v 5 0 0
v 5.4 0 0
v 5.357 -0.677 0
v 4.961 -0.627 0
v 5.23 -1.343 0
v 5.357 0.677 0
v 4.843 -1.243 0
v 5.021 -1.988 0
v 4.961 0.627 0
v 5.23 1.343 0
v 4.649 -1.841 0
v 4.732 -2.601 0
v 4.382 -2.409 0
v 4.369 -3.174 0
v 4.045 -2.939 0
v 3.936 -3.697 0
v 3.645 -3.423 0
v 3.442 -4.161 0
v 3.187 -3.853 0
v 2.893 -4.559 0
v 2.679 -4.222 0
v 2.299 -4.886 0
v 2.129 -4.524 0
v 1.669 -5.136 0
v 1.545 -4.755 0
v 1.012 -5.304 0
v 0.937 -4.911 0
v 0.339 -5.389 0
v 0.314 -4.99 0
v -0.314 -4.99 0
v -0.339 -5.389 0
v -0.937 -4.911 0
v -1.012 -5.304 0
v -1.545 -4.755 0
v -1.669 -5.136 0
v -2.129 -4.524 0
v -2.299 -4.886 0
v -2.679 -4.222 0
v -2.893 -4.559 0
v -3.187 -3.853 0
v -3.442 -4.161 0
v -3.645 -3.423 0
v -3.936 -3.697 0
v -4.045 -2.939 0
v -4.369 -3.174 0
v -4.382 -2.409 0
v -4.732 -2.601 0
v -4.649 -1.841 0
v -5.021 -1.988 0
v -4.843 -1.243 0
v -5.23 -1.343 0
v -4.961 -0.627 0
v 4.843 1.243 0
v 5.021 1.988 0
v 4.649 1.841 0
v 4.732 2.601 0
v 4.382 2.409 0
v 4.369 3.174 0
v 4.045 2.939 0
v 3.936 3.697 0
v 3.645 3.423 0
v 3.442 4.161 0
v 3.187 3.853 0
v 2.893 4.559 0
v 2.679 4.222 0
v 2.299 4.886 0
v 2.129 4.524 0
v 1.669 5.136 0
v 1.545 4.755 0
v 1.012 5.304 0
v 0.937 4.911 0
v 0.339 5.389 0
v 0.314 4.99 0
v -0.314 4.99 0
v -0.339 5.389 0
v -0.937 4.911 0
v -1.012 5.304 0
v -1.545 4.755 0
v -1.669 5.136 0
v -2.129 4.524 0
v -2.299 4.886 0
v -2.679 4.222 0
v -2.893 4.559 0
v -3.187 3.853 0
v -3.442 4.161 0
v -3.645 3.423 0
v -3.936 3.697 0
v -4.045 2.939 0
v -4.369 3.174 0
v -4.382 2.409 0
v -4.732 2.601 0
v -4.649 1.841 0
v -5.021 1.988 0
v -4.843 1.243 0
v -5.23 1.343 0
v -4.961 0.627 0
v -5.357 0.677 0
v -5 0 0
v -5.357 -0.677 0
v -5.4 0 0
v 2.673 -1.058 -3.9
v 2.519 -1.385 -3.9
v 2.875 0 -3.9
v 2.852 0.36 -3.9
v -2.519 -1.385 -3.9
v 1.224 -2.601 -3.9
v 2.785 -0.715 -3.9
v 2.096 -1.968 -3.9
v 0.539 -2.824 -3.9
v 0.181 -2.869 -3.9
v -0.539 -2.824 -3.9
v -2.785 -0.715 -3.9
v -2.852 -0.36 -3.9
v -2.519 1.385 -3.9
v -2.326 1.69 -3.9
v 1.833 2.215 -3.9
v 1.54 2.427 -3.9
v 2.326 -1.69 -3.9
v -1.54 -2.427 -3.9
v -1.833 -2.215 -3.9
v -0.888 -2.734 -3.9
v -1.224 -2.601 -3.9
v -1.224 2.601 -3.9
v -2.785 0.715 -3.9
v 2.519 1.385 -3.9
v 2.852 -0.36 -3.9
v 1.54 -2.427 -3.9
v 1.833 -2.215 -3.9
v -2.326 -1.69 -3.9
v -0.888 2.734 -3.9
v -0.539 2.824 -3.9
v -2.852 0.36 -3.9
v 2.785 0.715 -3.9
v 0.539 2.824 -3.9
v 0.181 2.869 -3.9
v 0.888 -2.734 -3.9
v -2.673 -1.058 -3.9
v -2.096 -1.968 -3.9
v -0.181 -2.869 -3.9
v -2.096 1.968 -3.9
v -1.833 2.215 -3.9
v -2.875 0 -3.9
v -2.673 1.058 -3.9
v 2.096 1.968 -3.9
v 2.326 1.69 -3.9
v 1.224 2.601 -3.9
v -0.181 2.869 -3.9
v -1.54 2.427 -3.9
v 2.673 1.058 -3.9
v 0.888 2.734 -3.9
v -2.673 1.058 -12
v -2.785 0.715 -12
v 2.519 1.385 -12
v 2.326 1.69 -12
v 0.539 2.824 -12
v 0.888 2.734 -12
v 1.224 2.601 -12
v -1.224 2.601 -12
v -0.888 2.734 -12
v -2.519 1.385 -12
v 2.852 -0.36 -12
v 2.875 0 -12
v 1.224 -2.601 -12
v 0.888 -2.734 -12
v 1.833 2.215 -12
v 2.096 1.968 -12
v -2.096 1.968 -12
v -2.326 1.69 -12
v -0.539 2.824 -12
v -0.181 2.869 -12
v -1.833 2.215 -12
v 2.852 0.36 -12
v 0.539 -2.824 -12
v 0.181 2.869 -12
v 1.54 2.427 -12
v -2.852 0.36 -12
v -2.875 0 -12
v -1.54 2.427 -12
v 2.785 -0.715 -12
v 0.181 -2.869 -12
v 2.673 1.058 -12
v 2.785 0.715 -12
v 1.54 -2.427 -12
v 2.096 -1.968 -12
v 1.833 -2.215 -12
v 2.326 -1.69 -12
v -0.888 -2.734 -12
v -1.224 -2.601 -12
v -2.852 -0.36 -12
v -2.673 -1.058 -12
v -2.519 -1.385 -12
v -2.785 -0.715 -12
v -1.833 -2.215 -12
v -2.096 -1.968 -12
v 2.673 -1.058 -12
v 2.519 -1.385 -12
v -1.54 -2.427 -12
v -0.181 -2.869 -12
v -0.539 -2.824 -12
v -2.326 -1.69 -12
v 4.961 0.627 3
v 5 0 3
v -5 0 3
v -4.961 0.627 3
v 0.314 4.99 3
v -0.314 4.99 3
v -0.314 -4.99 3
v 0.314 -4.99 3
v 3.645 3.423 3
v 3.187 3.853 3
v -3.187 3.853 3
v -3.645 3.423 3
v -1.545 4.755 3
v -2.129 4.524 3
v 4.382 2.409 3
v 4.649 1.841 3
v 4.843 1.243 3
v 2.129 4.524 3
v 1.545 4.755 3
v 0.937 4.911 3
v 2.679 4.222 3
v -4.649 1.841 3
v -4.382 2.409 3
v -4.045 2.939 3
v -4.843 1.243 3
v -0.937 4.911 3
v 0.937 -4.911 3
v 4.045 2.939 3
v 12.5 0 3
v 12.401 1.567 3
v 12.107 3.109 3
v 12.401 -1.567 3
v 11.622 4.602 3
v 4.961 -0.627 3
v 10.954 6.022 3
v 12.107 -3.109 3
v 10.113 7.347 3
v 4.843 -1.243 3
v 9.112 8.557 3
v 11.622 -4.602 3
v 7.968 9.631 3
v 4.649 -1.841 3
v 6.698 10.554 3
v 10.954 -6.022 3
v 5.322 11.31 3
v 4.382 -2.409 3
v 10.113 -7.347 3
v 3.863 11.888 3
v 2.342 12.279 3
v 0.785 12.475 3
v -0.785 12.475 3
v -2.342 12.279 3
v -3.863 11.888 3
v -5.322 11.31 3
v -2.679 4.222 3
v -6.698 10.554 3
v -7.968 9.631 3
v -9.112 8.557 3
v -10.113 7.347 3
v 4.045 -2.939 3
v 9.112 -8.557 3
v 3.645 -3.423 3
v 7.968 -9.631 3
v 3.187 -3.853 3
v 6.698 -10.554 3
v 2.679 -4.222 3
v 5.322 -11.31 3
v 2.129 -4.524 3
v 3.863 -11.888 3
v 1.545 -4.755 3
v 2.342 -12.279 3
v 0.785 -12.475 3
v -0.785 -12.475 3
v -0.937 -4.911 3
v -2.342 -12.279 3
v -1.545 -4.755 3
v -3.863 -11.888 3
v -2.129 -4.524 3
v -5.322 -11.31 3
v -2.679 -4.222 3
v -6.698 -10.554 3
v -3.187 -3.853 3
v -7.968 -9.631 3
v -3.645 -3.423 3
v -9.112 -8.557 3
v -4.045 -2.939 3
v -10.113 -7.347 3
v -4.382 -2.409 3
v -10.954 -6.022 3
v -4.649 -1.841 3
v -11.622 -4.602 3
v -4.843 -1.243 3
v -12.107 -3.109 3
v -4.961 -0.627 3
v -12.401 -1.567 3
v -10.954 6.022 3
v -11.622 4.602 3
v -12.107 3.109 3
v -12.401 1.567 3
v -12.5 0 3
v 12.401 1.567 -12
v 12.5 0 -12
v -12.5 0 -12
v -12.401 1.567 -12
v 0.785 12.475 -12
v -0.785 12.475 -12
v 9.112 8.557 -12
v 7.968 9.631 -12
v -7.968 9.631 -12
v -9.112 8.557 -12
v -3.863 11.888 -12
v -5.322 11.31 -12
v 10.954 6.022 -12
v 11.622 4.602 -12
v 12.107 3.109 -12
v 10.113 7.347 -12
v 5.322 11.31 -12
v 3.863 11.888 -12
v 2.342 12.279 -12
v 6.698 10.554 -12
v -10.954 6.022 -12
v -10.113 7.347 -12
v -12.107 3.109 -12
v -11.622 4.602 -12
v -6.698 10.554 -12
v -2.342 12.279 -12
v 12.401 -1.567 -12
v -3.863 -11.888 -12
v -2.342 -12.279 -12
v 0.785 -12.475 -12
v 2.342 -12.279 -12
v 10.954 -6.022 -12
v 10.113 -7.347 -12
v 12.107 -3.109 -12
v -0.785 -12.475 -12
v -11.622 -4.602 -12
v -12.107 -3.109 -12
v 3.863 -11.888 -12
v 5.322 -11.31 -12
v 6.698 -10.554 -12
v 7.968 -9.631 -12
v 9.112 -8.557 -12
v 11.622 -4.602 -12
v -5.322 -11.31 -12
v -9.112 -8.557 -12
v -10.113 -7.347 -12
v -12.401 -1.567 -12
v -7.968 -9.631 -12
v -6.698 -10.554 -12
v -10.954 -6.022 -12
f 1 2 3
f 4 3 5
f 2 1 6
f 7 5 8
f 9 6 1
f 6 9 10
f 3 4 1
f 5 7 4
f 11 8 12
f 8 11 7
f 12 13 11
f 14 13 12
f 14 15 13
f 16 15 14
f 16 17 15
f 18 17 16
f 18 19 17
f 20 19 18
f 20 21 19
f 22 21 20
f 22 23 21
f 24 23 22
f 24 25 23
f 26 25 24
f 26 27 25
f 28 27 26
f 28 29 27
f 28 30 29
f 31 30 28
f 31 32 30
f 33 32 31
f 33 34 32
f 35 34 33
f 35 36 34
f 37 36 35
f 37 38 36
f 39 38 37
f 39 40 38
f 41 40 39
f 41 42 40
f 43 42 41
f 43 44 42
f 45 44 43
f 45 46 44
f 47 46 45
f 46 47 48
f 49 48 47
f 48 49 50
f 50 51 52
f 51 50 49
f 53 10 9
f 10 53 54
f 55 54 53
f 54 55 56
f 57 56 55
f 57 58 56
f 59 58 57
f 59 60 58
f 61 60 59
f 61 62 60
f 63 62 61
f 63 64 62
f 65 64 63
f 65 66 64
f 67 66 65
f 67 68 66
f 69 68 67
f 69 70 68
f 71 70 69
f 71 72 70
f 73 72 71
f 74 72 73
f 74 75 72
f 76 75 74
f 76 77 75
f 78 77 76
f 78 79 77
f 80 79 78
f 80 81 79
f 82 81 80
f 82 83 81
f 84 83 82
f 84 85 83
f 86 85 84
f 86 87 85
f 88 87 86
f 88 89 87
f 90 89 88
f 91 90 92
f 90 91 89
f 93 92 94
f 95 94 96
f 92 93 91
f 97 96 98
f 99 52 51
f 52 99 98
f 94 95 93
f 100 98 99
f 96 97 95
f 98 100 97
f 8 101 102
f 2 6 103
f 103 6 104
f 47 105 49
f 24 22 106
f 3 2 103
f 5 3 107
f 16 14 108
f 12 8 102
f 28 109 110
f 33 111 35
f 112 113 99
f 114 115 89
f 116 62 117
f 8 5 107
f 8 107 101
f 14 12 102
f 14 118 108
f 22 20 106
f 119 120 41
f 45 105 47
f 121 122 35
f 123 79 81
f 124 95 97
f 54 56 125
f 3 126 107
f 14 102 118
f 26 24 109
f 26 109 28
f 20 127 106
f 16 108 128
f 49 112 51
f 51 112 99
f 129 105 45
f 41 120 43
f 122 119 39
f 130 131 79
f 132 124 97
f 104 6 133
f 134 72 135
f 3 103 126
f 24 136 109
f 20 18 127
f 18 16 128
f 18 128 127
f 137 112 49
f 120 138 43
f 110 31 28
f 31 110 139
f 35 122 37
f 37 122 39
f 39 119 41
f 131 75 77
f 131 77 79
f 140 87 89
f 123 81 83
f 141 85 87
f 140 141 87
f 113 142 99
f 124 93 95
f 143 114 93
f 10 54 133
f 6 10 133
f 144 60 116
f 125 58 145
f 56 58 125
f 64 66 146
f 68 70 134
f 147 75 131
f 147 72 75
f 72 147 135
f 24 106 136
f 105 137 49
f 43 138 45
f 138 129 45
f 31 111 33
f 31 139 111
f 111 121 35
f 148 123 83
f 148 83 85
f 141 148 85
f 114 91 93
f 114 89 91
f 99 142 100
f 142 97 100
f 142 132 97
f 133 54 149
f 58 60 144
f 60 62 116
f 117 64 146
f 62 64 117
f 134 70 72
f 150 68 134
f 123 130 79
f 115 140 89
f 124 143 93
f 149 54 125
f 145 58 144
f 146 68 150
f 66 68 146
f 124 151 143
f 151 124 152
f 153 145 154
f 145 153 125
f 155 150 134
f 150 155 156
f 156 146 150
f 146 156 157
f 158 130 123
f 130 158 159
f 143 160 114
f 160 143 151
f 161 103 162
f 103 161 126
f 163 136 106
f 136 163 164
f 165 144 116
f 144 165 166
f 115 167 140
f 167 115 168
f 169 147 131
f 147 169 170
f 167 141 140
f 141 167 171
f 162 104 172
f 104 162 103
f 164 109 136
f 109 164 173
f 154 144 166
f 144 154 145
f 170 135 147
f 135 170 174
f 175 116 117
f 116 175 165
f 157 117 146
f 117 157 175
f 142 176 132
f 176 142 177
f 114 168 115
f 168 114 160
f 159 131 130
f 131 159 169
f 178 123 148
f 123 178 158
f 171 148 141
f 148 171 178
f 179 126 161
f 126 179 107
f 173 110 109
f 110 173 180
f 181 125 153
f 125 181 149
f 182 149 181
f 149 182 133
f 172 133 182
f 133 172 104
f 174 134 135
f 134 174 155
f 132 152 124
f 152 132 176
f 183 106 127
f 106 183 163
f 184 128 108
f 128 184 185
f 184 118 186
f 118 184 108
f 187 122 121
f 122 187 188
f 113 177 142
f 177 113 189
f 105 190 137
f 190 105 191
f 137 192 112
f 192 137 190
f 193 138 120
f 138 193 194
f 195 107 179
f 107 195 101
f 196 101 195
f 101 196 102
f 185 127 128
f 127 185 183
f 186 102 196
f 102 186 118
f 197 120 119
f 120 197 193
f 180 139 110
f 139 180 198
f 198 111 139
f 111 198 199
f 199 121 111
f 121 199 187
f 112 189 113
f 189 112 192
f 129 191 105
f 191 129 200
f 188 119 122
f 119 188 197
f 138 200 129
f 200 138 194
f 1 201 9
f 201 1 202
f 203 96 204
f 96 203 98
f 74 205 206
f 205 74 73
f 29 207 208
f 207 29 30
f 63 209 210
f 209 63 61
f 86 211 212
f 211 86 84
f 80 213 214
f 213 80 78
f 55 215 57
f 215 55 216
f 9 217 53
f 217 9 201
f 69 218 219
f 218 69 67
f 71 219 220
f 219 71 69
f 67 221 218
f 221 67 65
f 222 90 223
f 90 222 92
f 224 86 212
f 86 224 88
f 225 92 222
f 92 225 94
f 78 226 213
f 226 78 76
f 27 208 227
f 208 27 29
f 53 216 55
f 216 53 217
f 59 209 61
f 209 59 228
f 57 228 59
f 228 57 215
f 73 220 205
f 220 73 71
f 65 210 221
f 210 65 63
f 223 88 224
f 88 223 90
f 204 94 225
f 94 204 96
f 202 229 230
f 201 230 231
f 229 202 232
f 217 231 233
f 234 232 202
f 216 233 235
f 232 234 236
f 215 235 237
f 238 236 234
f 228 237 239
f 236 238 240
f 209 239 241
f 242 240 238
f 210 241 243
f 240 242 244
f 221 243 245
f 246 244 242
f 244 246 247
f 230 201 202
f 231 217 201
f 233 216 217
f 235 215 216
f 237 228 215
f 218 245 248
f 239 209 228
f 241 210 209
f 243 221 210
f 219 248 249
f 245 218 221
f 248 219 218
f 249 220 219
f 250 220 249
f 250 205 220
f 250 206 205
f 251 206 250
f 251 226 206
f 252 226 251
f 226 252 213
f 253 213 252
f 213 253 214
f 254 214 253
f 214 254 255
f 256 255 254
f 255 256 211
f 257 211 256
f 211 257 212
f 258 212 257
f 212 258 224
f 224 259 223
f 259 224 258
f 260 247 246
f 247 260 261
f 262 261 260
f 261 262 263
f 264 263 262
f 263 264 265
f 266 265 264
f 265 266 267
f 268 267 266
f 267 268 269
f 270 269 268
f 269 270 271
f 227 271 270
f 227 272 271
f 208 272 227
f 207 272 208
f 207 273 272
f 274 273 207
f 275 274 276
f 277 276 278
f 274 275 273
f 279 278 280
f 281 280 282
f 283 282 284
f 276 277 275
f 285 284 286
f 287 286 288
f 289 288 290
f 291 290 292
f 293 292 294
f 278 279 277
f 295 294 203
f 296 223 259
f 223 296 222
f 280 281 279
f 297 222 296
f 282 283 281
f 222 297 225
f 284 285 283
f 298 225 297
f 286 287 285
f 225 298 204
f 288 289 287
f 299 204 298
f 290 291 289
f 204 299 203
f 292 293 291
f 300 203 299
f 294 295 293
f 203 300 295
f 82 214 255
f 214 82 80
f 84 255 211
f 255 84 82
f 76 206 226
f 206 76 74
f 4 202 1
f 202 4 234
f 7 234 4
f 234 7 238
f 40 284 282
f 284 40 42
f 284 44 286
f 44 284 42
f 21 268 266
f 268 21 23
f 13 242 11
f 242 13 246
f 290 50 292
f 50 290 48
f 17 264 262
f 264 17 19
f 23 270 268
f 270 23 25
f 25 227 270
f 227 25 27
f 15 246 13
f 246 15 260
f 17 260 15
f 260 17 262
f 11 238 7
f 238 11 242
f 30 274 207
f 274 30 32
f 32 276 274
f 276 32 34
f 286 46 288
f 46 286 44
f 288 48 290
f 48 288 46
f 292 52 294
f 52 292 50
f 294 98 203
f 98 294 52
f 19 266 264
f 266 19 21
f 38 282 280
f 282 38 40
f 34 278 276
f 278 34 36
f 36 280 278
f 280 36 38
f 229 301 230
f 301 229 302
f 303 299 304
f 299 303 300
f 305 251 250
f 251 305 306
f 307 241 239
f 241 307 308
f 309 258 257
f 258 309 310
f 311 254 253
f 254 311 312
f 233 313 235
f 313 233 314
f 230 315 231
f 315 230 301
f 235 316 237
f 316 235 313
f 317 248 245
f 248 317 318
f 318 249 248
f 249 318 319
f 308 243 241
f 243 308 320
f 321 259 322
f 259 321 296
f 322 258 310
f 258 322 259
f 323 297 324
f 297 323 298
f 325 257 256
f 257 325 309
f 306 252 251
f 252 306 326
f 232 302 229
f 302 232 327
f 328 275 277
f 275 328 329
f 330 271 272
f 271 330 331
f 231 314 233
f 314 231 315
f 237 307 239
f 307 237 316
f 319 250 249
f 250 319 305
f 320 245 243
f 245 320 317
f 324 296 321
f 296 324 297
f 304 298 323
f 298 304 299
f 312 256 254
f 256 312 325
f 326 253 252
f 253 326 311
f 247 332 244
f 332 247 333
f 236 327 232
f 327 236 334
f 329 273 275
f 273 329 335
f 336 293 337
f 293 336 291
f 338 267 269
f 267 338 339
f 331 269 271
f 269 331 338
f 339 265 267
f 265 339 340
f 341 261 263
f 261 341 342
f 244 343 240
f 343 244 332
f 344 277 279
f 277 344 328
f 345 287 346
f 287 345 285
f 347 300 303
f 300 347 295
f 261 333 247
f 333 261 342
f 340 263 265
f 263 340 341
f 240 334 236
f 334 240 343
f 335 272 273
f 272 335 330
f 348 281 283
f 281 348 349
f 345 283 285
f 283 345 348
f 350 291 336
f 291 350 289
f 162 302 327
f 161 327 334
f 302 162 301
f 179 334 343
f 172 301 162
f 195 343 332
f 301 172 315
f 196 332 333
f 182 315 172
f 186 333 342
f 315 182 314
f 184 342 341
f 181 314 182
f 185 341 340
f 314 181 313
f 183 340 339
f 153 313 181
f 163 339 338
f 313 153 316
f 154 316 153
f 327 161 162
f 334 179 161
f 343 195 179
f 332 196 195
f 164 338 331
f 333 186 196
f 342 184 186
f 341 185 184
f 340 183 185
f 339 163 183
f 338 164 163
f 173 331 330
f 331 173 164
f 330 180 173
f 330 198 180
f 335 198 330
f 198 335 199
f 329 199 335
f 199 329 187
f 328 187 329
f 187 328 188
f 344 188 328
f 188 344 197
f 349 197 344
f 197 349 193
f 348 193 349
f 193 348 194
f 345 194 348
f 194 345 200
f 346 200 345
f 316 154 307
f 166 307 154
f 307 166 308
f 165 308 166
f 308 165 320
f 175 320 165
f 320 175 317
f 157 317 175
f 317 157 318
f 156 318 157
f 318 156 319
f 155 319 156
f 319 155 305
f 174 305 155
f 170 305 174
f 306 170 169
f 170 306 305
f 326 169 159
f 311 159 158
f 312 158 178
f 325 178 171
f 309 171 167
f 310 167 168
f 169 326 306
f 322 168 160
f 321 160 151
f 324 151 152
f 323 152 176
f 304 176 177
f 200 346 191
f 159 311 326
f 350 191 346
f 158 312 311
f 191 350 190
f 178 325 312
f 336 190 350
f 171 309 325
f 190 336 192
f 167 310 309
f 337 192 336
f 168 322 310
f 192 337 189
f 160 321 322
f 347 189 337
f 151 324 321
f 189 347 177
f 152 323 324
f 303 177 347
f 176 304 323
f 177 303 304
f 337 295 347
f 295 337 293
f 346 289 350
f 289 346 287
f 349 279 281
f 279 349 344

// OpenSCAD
$fn = 50;

difference() {
	union() {
		translate(v = [0, 0, -12.0]) {
			cylinder(h = 15, r = 12.5);
		}
	}
	union() {
		translate(v = [0, 0, 0]) {
			rotate(a = [0, 0, 0]) {
				difference() {
					union() {
						translate(v = [0, 0, -15.0]) {
							cylinder(h = 15, r = 2.6);
						}
						translate(v = [0, 0, -3.9]) {
							cylinder(h = 3.9, r1 = 2.875, r2 = 5.4);
						}
						translate(v = [0, 0, -15.0]) {
							cylinder(h = 15, r = 2.875);
						}
						translate(v = [0, 0, -15.0]) {
							cylinder(h = 15, r = 2.6);
						}
					}
					union();
				}
			}
		}
		#cylinder(h = 3, r = 5.0);
	}
}
